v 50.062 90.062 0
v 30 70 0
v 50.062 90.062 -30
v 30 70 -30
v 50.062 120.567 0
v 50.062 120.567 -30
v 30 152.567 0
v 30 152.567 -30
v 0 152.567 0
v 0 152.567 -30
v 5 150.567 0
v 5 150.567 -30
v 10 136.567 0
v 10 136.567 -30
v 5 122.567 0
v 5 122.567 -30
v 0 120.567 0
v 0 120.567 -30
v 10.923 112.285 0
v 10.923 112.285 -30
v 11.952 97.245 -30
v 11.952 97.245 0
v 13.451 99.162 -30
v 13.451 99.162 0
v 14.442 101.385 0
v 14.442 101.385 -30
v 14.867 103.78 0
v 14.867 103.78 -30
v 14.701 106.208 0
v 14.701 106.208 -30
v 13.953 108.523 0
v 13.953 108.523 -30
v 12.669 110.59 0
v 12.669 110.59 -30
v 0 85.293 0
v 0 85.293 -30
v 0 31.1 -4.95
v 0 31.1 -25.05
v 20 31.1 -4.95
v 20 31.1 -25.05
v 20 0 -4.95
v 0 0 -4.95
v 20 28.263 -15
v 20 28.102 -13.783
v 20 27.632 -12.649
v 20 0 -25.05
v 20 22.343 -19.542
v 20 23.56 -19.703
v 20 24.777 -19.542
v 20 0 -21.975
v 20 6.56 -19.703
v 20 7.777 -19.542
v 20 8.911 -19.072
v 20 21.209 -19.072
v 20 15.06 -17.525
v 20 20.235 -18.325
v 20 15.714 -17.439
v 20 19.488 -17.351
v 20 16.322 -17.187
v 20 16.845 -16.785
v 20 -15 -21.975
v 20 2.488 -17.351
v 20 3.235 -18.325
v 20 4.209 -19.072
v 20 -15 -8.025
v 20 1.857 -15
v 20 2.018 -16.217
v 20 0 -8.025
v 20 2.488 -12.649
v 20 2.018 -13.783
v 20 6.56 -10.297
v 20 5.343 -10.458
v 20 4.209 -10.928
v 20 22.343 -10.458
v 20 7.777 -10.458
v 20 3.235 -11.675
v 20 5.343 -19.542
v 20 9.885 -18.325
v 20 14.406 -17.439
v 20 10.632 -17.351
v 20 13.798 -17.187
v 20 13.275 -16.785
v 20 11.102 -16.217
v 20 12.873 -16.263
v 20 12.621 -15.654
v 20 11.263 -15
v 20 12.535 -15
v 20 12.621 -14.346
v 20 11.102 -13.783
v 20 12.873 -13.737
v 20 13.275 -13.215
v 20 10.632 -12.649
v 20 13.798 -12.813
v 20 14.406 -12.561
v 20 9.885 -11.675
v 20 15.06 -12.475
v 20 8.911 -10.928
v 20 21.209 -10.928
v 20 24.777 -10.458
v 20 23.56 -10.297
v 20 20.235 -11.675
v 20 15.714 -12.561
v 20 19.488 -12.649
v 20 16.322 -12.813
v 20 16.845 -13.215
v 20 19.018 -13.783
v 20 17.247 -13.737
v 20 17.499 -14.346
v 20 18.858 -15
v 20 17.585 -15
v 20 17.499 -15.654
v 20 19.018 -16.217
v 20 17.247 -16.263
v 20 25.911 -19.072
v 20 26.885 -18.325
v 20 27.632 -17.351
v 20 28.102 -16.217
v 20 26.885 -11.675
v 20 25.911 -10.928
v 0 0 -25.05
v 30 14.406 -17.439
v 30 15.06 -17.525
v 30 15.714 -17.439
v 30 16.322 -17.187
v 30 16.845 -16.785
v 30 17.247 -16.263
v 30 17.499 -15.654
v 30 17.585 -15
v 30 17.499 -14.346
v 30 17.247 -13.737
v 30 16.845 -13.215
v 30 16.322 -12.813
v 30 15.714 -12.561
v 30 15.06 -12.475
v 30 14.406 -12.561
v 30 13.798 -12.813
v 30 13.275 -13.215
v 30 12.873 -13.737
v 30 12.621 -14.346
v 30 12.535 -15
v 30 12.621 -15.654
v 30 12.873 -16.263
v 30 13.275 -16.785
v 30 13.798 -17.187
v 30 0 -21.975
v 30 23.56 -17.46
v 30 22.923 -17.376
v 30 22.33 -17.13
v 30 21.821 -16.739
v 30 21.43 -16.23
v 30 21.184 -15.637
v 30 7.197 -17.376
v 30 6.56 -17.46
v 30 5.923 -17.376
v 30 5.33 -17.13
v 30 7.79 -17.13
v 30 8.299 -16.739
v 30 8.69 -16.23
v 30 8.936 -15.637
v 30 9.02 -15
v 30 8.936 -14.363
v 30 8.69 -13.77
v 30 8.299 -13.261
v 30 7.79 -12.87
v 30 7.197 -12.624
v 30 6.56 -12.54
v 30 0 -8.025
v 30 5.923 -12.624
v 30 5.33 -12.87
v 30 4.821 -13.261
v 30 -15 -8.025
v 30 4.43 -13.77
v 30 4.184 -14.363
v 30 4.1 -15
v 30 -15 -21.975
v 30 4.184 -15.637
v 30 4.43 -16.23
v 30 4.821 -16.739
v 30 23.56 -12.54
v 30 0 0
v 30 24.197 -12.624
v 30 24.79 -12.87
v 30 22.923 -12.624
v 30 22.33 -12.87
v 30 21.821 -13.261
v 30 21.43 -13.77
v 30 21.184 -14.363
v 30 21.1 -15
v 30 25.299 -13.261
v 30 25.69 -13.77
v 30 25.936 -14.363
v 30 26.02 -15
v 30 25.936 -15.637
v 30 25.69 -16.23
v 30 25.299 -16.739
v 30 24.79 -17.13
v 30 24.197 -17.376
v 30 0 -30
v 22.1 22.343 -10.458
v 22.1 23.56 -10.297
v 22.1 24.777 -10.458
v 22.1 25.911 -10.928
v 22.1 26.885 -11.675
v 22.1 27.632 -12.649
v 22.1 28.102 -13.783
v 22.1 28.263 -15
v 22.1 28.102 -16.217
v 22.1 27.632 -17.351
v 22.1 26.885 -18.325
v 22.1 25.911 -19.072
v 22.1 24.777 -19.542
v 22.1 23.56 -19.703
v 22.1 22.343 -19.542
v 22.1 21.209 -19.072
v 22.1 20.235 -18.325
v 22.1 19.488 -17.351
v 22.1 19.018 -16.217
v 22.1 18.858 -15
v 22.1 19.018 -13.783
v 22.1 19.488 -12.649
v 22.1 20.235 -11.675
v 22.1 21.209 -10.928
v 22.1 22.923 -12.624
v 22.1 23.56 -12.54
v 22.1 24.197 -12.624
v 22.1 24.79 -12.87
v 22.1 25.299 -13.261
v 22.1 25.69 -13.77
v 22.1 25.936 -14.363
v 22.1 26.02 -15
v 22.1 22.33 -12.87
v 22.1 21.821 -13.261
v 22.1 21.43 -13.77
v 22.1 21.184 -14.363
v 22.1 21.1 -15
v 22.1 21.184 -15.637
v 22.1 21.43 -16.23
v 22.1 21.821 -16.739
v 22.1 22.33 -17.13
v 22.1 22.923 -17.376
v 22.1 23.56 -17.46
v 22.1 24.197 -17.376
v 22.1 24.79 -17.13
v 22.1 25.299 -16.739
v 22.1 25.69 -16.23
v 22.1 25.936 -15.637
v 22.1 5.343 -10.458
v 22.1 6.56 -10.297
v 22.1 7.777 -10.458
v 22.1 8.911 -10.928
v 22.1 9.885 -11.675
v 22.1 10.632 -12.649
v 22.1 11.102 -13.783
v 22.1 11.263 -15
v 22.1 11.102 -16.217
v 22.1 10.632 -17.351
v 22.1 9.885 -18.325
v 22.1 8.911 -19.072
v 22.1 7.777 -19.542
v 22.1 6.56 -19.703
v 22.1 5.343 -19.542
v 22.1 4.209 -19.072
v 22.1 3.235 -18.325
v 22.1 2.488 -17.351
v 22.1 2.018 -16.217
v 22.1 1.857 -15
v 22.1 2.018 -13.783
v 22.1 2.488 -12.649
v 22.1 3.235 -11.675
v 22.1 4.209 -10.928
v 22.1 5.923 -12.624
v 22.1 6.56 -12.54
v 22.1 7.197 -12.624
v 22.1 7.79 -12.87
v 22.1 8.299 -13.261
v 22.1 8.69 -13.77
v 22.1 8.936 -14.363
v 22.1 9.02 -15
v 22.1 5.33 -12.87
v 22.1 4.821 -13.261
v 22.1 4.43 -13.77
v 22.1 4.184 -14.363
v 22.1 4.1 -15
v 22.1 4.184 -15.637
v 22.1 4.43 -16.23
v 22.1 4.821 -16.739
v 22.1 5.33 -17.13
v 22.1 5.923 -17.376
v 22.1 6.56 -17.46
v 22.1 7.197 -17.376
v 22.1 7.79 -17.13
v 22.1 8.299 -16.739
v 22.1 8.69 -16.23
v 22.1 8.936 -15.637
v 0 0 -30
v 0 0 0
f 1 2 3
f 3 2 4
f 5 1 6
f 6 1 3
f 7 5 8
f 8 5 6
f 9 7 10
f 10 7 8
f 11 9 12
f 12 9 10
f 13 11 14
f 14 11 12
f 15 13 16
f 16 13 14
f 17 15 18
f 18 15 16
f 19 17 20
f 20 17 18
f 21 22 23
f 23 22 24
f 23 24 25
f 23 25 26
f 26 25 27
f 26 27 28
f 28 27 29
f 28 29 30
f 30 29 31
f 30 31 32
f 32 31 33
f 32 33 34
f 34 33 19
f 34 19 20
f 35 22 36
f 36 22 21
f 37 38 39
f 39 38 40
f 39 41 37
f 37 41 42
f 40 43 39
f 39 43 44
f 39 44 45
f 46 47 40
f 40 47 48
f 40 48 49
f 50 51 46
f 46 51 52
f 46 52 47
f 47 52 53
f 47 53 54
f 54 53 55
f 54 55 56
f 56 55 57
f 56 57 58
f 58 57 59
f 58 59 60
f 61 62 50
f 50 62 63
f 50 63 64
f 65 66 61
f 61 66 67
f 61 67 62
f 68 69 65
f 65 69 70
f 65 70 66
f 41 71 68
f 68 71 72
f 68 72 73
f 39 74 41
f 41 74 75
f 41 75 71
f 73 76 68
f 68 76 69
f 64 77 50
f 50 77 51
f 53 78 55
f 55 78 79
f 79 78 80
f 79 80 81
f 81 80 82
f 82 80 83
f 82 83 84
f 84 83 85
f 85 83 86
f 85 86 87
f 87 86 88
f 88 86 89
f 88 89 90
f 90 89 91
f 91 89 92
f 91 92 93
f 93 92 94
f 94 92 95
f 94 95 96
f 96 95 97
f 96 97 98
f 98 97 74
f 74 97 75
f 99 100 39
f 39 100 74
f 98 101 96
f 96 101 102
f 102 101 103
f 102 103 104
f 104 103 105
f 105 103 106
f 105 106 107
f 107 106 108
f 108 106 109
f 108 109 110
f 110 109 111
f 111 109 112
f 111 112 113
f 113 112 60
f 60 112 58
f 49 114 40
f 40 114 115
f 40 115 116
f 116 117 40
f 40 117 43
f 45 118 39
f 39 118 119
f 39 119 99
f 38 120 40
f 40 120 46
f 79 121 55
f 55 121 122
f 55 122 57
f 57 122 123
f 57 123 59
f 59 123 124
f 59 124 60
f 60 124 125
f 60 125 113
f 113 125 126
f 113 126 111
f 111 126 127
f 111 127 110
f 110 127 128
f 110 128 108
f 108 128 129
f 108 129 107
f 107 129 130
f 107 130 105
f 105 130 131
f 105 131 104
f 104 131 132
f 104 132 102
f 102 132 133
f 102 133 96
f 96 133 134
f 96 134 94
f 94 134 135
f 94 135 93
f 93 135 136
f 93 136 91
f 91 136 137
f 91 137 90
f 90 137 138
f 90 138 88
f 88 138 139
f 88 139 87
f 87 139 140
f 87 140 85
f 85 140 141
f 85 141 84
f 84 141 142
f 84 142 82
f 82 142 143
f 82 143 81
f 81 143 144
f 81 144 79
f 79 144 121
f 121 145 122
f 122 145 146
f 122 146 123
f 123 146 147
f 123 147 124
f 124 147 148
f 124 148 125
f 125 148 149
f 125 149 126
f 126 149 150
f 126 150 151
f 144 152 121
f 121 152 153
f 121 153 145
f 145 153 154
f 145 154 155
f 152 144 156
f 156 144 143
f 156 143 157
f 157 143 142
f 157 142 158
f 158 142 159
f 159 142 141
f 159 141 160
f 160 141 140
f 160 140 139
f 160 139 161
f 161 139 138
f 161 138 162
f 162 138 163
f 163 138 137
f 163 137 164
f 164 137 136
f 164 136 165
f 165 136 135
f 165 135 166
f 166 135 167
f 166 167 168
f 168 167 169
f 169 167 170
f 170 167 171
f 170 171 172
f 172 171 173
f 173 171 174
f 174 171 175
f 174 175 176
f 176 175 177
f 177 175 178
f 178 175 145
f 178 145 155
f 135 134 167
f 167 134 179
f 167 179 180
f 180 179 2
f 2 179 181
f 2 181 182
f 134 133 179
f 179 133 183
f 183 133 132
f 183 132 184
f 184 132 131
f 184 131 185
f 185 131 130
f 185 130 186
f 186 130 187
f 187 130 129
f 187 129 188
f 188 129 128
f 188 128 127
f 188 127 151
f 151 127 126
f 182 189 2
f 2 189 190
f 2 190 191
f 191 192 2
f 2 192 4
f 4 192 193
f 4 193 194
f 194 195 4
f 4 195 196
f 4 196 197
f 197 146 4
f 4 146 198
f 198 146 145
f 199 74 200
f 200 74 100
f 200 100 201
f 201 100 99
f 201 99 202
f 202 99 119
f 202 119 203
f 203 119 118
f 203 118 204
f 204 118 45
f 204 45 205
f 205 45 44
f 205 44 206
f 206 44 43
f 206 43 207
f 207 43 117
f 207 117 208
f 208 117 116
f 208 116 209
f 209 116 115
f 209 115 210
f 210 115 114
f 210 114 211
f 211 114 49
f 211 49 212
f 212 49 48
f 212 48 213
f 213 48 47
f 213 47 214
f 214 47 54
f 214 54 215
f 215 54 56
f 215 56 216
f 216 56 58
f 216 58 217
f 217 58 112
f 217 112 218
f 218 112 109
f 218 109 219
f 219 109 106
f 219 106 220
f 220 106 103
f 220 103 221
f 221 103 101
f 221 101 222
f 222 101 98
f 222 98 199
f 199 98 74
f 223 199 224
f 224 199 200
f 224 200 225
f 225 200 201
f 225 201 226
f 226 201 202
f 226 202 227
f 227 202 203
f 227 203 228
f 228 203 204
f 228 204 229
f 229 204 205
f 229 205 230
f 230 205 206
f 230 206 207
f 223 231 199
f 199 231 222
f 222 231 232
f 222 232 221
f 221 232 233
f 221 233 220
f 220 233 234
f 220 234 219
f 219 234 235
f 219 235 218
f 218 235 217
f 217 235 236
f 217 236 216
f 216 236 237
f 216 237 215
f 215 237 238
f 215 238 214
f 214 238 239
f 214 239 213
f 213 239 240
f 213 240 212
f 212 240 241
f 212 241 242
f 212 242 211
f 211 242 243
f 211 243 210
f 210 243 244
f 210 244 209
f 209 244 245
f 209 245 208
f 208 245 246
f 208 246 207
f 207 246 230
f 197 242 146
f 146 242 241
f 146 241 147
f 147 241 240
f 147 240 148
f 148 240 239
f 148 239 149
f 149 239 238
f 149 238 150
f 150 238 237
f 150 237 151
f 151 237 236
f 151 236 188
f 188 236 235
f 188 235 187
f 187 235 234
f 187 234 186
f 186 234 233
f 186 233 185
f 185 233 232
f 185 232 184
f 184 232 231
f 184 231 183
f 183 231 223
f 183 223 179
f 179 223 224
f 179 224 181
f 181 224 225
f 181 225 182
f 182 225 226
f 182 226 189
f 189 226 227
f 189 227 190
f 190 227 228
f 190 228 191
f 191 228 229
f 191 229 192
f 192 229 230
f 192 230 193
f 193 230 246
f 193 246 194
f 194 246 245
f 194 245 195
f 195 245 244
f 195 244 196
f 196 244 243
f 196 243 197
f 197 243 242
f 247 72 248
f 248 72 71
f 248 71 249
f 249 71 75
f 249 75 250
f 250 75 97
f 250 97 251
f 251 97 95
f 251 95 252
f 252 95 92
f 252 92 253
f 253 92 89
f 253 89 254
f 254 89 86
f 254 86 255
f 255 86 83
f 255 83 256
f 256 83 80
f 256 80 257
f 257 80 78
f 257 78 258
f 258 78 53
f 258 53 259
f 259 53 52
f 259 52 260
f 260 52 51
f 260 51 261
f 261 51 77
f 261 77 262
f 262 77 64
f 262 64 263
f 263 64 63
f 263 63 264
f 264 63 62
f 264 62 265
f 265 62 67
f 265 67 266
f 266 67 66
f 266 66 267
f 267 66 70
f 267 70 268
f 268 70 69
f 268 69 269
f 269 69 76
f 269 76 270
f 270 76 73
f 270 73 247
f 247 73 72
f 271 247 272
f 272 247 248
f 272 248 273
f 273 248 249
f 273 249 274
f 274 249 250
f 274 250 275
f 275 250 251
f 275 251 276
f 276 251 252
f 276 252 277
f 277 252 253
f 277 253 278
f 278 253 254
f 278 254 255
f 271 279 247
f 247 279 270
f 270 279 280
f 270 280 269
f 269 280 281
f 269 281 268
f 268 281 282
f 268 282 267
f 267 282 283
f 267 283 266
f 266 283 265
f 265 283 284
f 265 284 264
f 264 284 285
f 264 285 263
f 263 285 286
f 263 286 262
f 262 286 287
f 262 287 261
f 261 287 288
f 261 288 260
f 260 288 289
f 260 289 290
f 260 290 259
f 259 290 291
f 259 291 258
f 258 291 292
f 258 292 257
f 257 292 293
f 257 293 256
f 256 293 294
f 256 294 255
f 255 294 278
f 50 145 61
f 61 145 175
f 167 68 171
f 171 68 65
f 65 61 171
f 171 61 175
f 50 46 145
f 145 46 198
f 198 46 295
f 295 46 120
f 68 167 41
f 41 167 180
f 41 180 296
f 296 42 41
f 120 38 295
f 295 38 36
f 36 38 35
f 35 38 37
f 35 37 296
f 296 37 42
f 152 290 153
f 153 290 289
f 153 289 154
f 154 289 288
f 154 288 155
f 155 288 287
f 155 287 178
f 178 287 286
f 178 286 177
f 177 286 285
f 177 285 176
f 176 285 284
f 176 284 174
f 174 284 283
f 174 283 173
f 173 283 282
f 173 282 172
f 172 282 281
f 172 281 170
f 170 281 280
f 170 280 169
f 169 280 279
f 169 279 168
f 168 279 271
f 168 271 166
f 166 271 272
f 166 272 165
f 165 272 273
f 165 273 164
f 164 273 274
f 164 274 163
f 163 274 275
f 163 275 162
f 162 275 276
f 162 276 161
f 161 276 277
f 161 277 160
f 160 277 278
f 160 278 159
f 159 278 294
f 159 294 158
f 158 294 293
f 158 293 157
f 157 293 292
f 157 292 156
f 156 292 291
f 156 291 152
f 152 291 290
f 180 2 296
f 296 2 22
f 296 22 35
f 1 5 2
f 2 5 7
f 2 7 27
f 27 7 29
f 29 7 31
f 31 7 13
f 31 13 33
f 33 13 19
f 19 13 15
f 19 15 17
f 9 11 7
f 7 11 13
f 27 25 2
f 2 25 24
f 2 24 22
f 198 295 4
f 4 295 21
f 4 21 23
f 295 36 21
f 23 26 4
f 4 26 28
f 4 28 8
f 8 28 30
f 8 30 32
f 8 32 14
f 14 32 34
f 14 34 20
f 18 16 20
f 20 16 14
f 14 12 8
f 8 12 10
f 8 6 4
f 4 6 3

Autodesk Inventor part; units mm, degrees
ref_plane "YZ Plane" through (0, 0, 0) normal (1, 0, 0) x (0, 1, 0)
ref_plane "XZ Plane" through (0, 0, 0) normal (0, 1, 0) x (-1, 0, 0)
ref_plane "XY Plane" through (0, 0, 0) normal (0, 0, 1) x (1, 0, 0)
sketch "Sketch1" plane through (0, 0, 0) normal (0, 0, 1) x (1, 0, 0)
  line L0 (0, 0) -> (25, 0)
  line L1 (25, 0) -> (25, 40)
  line L2 (25, 40) -> (0, 40)
  line L3 (0, 40) -> (0, 0)
  dimension "d1" = 25
  dimension "d2" = 40
  dimension "d3" = 25
extrude "Extrusion1" add sketch "Sketch1" against normal blind 30
sketch "Sketch2" plane through (25, 0, 0) normal (1, 0, 0) x (0, 0, -1)
  line L0 (0, 0) -> (30, 0) projected
  circle A0 centre (15, 6.56) radius 2.46
extrude "Extrusion2" cut sketch "Sketch2" against normal blind 30
sketch "Sketch3" plane through (0, 0, 0) normal (-1, 0, 0) x (0, 0, 1)
  line L0 (0, 0) -> (-30, 0) projected
  line L1 (-25.05, 0) -> (-4.95, 0)
  line L2 (-4.95, 0) -> (-4.95, 33.12)
  line L3 (-4.95, 33.12) -> (-25.05, 33.12)
  line L4 (-25.05, 33.12) -> (-25.05, 0)
  dimension "d11" = 20.1
extrude "Extrusion3" cut sketch "Sketch3" against normal blind 20
sketch "Sketch4" plane through (0, 0, 0) normal (0, -1, 0) x (1, 0, 0)
  line L0 (20, -4.95) -> (20, -25.05) projected
  line L1 (20, -15) -> (25, -15)
  line L2 (25, 0) -> (25, -30) projected
  line L3 (20, -8.025) -> (25, -8.025)
  line L4 (25, -8.025) -> (25, -21.975)
  line L5 (25, -21.975) -> (20, -21.975)
  line L6 (20, -21.975) -> (20, -8.025)
  line L7 (20, -8.025) -> (25, -21.975) construction
  line L8 (25, -8.025) -> (20, -21.975) construction
  line L9 (25, -12.54) -> (25, -17.46) projected
  point P0 (0, 0)
  point P1 (22.5, -15)
  dimension "d14" = 13.95
extrude "Extrusion4" add sketch "Sketch4" along normal blind 15
sketch "Sketch5" plane through (20, 0, 0) normal (-1, 0, 0) x (0, 0, 1)
  circle A0 centre (-15, 6.56) radius 2.46 projected
  circle A1 centre (-15, 6.56) radius 4.7025
  circle A2 centre (-15, 6.56) radius 2.46 projected
  circle A3 centre (-15, 6.56) radius 2.46
  point P0 (0, 0)
  dimension "d17" = 9.405
extrude "Extrusion5" cut sketch "Sketch5" against normal blind 2.1
sketch "Sketch6" plane through (25, 0, 0) normal (1, 0, 0) x (0, 0, -1)
  circle A0 centre (15, 6.56) radius 4.7025 projected
  line L0 (15, 6.56) -> (15, 23.56)
  circle A1 centre (15, 23.56) radius 2.46
  point P0 (0, 0)
  dimension "d20" = 17
  dimension "d21" = 4.92
extrude "Extrusion6" cut sketch "Sketch6" against normal blind 10 contours A1
sketch "Sketch7" plane through (20, 0, 0) normal (-1, 0, 0) x (0, 0, 1)
  circle A0 centre (-15, 23.56) radius 2.46 projected
  circle A1 centre (-15, 23.56) radius 4.7025
  point P0 (0, 0)
  dimension "d24" = 9.405
extrude "Extrusion7" cut sketch "Sketch7" against normal blind 2.1
sketch "Sketch9" plane through (25, 0, 0) normal (1, 0, 0) x (0, 0, -1)
  circle A0 centre (15, 6.56) radius 2.46 projected
  circle A1 centre (15, 6.56) radius 2.46
  circle A2 centre (15, 23.56) radius 2.46 projected
  circle A3 centre (15, 23.56) radius 2.46
  line L0 (30, 40) -> (30, 0) projected
  line L1 (30, 0) -> (30, 40)
  line L2 (30, 40) -> (0, 40)
  line L3 (0, 40) -> (0, 0)
  line L4 (0, 0) -> (8.025, 0) projected
  line L5 (21.975, 0) -> (21.975, -15)
  line L6 (21.975, -15) -> (8.025, -15)
  line L7 (8.025, -15) -> (8.025, 0)
  line L8 (0, 0) -> (8.025, 0)
  line L9 (21.975, 0) -> (30, 0)
extrude "Extrusion8" add sketch "Sketch9" along normal blind 5
sketch "Sketch10" plane through (0, 40, 0) normal (0, 1, 0) x (1, 0, 0)
  line L0 (0, 30) -> (30, 30) projected
  line L1 (30, 0) -> (0, 0) projected
  line L2 (0, 30) -> (30, 30)
  line L3 (30, 30) -> (30, 0)
  line L4 (30, 0) -> (0, 0)
  line L5 (0, 0) -> (0, 30)
extrude "Extrusion9" add sketch "Sketch10" along normal blind 30
sketch "Sketch12" plane through (30, 0, 0) normal (1, 0, 0) x (0, 0, -1)
  circle A0 centre (15, 6.56) radius 2.46 projected
  line L0 (15, 6.56) -> (15, 15.06)
  circle A1 centre (15, 15.06) radius 2.525
  point P0 (0, 0)
  dimension "d31" = 8.5
  dimension "d33" = 5.05
extrude "Extrusion10" cut sketch "Sketch12" against normal blind 30 contours A1
sketch "Sketch15" plane through (0, 0, -25.05) normal (-1, 0, 0) x (0, 0, 1)
  line L0 (0, 33.12) -> (20.1, 33.12) projected
  line L1 (20.1, 33.12) -> (20.1, 0) projected
  line L2 (0, 33.12) -> (20.1, 33.12)
  line L3 (20.1, 33.12) -> (20.1, 31.1)
  line L4 (20.1, 31.1) -> (0, 31.1)
  line L5 (0, 31.1) -> (0, 33.12)
  point P0 (25.05, 0)
  dimension "d57" = 2.02
extrude "Extrusion13" add sketch "Sketch15" against normal blind 20
sketch "Sketch17" plane through (0, 0, 0) normal (0, 0, 1) x (1, 0, 0)
  line L0 (0, 70) -> (30, 70) projected
  line L1 (30, 70) -> (50.0622, 90.0622)
  line L2 (30, 70) -> (80, 70) construction
  line L3 (11.9522, 97.2454) -> (0, 85.2932)
  line L4 (0, 70) -> (0, 85.2932)
  line L5 (0, 70) -> (0, 0) projected
  line L6 (0, 70) -> (30, 70)
  line L7 (10.923, 112.2849) -> (0, 120.567)
  line L8 (50.0622, 105.3553) -> (50.0622, 120.567)
  line L9 (50.0622, 105.3553) -> (50.0622, 90.0622)
  arc A0 (11.9522, 97.2454) -> (10.923, 112.2849) centre (4.8811, 104.3165) ccw
  line L10 (0, 152.567) -> (30, 152.567)
  line L11 (30, 152.567) -> (50.0622, 120.567)
  line L12 (5, 150.567) -> (0, 152.567)
  line L13 (5, 122.567) -> (0, 120.567)
  line L14 (5, 122.567) -> (10, 136.567)
  line L15 (10, 136.567) -> (5, 150.567)
  dimension "d61" = 45
  dimension "d62" = 32.0271
  dimension "d72" = 10
extrude "Extrusion14" add sketch "Sketch17" against normal blind 30
properties part number "rec_c_28mm_x_30mm"
